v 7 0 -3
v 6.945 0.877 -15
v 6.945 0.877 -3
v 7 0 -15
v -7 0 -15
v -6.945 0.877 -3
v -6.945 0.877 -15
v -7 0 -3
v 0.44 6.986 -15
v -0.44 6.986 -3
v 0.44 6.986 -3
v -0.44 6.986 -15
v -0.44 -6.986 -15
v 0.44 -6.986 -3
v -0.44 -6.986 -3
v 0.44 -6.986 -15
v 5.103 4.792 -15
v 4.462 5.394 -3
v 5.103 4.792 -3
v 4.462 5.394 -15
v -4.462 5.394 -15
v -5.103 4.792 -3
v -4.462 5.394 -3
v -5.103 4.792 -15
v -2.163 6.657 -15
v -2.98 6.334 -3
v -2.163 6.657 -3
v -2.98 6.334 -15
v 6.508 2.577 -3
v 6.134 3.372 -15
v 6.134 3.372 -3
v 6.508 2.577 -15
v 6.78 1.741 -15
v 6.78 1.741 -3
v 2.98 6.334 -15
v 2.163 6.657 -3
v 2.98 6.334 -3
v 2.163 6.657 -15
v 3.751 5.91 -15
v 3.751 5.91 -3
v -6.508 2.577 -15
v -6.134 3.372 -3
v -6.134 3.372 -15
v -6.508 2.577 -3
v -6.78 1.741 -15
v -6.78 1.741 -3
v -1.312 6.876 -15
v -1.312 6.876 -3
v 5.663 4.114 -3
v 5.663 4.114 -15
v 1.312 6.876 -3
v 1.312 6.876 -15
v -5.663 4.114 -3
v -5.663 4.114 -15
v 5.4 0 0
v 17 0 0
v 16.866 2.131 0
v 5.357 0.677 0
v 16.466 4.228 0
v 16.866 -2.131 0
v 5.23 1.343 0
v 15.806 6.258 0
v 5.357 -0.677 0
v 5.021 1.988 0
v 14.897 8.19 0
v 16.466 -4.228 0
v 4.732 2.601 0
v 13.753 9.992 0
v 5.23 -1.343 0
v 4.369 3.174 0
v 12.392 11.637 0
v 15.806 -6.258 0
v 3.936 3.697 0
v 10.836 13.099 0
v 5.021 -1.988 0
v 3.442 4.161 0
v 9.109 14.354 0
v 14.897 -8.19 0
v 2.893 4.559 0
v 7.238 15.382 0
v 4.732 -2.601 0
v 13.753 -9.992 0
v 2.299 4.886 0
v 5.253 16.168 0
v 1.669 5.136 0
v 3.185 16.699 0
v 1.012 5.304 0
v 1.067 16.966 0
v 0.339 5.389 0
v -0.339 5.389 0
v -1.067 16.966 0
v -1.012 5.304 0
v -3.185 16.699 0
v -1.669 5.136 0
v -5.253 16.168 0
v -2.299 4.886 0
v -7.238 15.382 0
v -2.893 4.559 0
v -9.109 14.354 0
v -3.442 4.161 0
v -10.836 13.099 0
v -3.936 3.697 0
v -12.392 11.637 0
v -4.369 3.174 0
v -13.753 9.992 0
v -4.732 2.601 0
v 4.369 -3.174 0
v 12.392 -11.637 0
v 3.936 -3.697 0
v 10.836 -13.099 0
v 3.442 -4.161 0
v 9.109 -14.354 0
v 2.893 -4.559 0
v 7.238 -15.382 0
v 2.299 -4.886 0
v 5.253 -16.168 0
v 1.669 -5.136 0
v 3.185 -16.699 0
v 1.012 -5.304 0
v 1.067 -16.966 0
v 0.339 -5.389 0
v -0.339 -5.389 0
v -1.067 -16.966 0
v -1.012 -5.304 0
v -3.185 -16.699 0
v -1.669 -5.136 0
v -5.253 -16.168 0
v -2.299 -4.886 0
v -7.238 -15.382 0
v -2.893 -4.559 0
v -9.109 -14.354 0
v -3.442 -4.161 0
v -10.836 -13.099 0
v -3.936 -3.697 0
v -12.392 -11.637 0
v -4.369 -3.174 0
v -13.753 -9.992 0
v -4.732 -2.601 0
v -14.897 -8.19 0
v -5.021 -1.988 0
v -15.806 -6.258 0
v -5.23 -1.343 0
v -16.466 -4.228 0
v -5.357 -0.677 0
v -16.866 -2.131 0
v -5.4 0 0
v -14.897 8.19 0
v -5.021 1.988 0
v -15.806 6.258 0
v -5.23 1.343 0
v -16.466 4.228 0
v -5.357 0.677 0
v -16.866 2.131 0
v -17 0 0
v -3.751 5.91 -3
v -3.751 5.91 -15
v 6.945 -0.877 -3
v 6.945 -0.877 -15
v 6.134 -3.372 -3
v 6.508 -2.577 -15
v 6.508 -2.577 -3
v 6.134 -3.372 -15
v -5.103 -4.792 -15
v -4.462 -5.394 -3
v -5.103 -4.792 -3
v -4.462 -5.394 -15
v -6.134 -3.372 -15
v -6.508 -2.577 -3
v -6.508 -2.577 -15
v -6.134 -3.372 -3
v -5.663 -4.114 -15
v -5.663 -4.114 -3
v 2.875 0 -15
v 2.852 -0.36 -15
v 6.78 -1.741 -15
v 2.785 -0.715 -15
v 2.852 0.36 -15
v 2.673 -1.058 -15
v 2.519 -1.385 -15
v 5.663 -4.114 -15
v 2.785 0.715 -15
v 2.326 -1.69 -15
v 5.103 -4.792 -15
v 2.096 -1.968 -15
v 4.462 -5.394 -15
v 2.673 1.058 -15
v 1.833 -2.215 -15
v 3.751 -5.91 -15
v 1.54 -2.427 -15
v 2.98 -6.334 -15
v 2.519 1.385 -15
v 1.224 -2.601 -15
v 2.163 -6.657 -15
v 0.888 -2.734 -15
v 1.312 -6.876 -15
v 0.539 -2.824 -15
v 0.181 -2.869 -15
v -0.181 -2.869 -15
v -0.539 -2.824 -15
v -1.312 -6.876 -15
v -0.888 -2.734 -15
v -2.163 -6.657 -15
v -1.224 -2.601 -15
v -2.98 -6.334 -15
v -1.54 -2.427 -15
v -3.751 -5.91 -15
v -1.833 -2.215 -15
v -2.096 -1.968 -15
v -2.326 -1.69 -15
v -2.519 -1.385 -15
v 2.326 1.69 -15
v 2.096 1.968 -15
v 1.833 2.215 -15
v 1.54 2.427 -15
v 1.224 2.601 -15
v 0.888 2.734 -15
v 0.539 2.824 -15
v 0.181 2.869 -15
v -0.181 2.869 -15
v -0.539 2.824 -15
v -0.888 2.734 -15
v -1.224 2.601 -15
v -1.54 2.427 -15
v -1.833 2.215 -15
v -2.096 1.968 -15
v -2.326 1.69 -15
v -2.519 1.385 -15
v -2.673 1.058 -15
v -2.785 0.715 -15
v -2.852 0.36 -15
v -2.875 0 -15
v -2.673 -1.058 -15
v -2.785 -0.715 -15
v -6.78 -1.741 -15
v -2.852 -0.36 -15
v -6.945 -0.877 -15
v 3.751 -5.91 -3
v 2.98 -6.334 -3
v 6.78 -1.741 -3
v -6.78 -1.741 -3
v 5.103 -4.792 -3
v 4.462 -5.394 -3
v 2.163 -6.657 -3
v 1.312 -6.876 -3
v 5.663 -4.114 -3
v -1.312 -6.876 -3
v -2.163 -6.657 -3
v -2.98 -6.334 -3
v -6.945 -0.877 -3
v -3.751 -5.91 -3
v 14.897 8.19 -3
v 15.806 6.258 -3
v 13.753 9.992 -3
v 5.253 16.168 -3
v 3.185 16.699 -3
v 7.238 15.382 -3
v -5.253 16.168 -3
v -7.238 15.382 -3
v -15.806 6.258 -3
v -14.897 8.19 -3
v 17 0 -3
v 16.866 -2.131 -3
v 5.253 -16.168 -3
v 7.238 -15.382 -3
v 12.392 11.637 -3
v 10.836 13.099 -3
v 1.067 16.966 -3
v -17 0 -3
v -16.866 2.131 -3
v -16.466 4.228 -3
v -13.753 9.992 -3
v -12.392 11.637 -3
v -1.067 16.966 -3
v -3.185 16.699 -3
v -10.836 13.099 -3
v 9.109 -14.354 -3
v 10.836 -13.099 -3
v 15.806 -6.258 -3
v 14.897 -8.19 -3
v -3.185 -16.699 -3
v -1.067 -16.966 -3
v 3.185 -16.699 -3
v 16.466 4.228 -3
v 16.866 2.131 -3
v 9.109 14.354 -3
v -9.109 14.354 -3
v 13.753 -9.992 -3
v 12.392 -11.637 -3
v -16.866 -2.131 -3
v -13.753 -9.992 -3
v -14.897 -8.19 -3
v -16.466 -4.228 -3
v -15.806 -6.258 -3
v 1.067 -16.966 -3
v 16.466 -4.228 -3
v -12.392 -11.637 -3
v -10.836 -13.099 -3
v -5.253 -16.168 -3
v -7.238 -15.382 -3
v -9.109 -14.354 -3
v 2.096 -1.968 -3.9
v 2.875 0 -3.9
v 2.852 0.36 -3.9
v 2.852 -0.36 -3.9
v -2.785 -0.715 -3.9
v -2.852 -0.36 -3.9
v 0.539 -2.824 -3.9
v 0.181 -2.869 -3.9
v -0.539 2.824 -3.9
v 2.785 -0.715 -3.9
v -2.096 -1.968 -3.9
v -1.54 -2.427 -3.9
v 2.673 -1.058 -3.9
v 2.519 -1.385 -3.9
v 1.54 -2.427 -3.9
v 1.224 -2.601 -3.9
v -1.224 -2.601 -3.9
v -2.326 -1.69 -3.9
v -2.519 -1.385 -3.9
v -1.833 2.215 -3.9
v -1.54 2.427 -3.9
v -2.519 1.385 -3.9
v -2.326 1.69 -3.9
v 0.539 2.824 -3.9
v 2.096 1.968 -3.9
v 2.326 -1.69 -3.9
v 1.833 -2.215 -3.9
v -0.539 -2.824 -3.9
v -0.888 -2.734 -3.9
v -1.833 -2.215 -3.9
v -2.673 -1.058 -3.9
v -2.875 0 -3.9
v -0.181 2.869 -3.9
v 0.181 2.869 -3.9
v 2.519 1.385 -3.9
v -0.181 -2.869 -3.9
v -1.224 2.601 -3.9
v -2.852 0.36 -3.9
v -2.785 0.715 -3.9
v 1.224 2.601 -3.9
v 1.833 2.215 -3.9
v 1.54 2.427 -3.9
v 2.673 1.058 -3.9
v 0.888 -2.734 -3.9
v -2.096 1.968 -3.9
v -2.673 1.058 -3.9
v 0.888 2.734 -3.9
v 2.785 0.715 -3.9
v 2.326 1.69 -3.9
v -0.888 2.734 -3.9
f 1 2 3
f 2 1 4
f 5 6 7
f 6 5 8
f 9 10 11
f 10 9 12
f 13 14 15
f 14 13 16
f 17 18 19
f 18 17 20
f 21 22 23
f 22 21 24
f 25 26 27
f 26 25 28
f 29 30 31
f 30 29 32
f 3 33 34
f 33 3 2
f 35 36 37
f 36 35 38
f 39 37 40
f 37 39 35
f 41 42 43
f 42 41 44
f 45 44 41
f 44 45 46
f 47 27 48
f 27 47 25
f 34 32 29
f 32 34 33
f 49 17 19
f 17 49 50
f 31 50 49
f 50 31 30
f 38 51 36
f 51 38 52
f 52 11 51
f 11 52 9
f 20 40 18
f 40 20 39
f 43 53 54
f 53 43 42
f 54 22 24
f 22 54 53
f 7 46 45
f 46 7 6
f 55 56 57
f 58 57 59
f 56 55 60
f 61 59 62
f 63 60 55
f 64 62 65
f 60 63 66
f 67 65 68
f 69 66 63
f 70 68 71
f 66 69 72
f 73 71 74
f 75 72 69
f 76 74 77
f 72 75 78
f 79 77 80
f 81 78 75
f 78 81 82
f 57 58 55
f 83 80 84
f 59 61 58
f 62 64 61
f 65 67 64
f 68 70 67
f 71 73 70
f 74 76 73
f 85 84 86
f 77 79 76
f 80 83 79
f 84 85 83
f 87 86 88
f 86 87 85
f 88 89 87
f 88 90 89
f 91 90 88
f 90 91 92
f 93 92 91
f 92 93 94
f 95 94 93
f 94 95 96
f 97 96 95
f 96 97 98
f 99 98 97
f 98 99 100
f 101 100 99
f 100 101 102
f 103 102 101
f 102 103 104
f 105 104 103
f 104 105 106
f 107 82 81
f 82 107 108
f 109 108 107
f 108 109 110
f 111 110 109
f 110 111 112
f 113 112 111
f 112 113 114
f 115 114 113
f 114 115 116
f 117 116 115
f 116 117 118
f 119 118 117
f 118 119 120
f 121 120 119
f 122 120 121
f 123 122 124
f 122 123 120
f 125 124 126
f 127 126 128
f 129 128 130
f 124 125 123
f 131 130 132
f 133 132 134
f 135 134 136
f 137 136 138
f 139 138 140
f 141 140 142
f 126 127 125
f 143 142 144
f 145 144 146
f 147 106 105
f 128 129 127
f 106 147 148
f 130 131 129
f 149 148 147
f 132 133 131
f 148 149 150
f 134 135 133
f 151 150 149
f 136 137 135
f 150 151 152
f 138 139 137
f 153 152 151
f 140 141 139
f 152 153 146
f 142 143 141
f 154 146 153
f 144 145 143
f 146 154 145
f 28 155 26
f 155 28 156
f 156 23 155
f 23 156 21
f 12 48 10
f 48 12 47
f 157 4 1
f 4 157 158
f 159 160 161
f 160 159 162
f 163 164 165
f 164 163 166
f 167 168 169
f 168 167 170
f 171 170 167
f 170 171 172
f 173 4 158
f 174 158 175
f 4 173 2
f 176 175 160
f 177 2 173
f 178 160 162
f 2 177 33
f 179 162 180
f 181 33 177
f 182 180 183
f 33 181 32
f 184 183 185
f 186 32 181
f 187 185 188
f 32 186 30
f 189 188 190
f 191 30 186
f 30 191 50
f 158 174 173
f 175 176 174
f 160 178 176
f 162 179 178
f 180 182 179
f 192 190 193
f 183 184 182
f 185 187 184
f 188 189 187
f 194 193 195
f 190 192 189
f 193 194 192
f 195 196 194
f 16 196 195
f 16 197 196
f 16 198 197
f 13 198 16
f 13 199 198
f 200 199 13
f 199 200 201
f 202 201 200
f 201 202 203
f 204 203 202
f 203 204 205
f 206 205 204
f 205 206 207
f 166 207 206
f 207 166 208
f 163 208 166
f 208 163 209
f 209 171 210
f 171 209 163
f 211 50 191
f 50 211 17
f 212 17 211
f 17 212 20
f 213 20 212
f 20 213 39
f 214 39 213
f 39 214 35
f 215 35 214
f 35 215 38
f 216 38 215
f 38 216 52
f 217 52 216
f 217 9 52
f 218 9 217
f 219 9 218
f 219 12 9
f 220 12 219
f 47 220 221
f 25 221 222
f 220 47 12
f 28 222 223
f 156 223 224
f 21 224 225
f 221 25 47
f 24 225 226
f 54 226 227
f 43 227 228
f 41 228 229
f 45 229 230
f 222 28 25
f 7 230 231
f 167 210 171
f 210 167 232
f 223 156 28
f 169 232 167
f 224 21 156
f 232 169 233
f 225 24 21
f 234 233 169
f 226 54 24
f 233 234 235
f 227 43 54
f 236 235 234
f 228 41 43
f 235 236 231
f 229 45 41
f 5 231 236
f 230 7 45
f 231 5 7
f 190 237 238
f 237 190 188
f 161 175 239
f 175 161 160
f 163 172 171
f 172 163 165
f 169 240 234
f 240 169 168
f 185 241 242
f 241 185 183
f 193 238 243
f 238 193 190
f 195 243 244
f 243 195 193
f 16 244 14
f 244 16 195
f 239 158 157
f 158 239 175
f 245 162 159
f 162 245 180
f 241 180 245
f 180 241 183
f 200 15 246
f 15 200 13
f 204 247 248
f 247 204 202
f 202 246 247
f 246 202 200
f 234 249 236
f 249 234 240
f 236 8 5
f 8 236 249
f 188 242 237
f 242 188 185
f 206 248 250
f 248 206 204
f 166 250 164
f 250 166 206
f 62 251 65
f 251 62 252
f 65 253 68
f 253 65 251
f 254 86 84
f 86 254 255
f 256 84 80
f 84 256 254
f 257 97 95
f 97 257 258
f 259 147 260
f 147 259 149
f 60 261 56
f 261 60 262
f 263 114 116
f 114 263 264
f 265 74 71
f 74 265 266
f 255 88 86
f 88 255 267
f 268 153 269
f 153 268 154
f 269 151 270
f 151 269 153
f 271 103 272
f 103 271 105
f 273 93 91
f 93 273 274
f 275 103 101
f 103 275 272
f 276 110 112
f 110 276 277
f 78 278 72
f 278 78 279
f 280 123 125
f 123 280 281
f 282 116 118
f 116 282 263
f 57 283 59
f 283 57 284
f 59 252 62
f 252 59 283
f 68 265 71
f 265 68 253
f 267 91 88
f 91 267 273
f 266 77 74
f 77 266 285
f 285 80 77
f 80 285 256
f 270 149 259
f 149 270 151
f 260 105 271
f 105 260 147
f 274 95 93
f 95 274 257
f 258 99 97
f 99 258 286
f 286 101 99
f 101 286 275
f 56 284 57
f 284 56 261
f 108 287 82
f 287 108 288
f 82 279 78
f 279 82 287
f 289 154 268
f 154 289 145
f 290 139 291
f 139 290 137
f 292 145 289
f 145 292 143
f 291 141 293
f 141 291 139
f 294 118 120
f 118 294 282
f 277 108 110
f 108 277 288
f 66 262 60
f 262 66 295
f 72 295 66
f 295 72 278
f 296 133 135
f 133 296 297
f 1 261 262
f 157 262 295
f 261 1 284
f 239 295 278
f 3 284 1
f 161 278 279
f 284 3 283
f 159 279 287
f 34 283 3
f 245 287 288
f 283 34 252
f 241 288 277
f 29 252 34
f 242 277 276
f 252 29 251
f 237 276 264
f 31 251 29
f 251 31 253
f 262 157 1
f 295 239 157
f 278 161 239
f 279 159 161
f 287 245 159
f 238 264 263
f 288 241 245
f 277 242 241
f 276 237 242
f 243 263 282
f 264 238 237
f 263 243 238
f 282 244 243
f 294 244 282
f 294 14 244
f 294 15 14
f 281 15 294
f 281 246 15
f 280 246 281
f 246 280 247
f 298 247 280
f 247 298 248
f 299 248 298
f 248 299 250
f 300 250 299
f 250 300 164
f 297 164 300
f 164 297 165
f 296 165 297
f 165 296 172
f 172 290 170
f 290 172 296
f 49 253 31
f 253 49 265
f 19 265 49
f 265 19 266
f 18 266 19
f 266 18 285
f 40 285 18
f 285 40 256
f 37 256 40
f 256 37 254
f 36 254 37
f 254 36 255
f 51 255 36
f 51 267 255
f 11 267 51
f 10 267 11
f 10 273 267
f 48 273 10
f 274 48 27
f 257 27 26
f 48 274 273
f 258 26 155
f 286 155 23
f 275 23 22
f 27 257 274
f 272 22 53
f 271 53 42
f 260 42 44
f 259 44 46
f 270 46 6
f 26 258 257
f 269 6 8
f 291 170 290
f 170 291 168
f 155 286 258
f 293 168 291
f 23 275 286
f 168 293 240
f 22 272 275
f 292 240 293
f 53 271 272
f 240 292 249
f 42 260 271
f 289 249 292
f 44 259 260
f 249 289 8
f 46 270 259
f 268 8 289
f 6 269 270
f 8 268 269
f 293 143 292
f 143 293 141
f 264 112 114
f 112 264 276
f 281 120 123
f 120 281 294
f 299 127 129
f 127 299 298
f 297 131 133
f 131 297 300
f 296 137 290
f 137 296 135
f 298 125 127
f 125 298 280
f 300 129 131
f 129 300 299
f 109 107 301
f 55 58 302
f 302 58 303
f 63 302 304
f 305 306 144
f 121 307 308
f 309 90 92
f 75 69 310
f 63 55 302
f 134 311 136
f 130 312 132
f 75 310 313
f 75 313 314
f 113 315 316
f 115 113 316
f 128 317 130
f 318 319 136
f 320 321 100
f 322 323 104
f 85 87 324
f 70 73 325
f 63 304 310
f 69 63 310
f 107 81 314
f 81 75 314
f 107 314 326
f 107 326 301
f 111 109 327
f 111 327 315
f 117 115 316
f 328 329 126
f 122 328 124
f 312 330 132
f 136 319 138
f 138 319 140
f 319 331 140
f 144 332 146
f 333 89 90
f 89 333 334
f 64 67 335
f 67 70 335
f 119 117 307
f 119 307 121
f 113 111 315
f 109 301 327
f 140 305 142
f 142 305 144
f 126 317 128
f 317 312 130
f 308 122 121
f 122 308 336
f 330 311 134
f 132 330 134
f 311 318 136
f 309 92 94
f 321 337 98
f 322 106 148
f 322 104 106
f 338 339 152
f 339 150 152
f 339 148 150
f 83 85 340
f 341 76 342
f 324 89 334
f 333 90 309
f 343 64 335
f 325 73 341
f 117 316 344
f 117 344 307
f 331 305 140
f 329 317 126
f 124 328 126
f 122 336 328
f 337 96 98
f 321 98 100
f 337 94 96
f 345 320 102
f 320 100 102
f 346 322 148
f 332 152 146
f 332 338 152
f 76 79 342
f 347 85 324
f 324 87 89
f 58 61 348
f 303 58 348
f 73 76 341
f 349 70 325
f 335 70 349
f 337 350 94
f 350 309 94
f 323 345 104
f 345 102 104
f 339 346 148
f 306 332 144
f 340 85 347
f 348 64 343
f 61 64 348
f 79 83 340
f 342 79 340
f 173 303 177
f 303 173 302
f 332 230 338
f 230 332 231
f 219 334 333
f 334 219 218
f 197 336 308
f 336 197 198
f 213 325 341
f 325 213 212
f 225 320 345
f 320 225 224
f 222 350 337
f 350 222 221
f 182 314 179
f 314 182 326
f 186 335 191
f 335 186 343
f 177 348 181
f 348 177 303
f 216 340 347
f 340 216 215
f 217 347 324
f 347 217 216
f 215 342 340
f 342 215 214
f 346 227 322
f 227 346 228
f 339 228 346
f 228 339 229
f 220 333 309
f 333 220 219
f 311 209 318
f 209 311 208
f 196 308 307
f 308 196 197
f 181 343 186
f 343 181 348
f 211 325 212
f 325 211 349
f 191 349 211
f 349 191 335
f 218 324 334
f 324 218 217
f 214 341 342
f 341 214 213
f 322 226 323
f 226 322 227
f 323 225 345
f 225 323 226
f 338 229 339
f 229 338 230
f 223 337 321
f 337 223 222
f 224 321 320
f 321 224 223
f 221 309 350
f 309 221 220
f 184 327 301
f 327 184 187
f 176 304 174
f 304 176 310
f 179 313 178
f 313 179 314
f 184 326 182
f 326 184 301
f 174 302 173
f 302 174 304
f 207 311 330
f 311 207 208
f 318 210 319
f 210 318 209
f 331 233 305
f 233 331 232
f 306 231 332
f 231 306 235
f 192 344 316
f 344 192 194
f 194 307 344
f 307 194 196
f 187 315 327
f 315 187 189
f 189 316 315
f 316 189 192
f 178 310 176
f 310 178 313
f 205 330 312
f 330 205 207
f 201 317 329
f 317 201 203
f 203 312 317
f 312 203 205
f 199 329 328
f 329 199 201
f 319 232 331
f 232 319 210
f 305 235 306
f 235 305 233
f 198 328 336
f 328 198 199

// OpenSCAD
$fn = 50;


difference() {
	union() {
		translate(v = [0, 0, -15.0000000000]) {
			cylinder(h = 15, r = 7.0000000000);
		}
		translate(v = [0, 0, -3.0000000000]) {
			cylinder(h = 3, r = 17.0000000000);
		}
	}
	union() {
		translate(v = [0, 0, 0]) {
			rotate(a = [0, 0, 0]) {
				difference() {
					union() {
						#translate(v = [0, 0, -15.0000000000]) {
							cylinder(h = 15, r = 2.6000000000);
						}
						#translate(v = [0, 0, -3.9000000000]) {
							cylinder(h = 3.9000000000, r = 7.0000000000, r1 = 2.8750000000, r2 = 5.4000000000);
						}
						#translate(v = [0, 0, -15.0000000000]) {
							cylinder(h = 15, r = 2.8750000000);
						}
						#translate(v = [0, 0, -15.0000000000]) {
							cylinder(h = 15, r = 2.6000000000);
						}
					}
					union();
				}
			}
		}
	}
}
